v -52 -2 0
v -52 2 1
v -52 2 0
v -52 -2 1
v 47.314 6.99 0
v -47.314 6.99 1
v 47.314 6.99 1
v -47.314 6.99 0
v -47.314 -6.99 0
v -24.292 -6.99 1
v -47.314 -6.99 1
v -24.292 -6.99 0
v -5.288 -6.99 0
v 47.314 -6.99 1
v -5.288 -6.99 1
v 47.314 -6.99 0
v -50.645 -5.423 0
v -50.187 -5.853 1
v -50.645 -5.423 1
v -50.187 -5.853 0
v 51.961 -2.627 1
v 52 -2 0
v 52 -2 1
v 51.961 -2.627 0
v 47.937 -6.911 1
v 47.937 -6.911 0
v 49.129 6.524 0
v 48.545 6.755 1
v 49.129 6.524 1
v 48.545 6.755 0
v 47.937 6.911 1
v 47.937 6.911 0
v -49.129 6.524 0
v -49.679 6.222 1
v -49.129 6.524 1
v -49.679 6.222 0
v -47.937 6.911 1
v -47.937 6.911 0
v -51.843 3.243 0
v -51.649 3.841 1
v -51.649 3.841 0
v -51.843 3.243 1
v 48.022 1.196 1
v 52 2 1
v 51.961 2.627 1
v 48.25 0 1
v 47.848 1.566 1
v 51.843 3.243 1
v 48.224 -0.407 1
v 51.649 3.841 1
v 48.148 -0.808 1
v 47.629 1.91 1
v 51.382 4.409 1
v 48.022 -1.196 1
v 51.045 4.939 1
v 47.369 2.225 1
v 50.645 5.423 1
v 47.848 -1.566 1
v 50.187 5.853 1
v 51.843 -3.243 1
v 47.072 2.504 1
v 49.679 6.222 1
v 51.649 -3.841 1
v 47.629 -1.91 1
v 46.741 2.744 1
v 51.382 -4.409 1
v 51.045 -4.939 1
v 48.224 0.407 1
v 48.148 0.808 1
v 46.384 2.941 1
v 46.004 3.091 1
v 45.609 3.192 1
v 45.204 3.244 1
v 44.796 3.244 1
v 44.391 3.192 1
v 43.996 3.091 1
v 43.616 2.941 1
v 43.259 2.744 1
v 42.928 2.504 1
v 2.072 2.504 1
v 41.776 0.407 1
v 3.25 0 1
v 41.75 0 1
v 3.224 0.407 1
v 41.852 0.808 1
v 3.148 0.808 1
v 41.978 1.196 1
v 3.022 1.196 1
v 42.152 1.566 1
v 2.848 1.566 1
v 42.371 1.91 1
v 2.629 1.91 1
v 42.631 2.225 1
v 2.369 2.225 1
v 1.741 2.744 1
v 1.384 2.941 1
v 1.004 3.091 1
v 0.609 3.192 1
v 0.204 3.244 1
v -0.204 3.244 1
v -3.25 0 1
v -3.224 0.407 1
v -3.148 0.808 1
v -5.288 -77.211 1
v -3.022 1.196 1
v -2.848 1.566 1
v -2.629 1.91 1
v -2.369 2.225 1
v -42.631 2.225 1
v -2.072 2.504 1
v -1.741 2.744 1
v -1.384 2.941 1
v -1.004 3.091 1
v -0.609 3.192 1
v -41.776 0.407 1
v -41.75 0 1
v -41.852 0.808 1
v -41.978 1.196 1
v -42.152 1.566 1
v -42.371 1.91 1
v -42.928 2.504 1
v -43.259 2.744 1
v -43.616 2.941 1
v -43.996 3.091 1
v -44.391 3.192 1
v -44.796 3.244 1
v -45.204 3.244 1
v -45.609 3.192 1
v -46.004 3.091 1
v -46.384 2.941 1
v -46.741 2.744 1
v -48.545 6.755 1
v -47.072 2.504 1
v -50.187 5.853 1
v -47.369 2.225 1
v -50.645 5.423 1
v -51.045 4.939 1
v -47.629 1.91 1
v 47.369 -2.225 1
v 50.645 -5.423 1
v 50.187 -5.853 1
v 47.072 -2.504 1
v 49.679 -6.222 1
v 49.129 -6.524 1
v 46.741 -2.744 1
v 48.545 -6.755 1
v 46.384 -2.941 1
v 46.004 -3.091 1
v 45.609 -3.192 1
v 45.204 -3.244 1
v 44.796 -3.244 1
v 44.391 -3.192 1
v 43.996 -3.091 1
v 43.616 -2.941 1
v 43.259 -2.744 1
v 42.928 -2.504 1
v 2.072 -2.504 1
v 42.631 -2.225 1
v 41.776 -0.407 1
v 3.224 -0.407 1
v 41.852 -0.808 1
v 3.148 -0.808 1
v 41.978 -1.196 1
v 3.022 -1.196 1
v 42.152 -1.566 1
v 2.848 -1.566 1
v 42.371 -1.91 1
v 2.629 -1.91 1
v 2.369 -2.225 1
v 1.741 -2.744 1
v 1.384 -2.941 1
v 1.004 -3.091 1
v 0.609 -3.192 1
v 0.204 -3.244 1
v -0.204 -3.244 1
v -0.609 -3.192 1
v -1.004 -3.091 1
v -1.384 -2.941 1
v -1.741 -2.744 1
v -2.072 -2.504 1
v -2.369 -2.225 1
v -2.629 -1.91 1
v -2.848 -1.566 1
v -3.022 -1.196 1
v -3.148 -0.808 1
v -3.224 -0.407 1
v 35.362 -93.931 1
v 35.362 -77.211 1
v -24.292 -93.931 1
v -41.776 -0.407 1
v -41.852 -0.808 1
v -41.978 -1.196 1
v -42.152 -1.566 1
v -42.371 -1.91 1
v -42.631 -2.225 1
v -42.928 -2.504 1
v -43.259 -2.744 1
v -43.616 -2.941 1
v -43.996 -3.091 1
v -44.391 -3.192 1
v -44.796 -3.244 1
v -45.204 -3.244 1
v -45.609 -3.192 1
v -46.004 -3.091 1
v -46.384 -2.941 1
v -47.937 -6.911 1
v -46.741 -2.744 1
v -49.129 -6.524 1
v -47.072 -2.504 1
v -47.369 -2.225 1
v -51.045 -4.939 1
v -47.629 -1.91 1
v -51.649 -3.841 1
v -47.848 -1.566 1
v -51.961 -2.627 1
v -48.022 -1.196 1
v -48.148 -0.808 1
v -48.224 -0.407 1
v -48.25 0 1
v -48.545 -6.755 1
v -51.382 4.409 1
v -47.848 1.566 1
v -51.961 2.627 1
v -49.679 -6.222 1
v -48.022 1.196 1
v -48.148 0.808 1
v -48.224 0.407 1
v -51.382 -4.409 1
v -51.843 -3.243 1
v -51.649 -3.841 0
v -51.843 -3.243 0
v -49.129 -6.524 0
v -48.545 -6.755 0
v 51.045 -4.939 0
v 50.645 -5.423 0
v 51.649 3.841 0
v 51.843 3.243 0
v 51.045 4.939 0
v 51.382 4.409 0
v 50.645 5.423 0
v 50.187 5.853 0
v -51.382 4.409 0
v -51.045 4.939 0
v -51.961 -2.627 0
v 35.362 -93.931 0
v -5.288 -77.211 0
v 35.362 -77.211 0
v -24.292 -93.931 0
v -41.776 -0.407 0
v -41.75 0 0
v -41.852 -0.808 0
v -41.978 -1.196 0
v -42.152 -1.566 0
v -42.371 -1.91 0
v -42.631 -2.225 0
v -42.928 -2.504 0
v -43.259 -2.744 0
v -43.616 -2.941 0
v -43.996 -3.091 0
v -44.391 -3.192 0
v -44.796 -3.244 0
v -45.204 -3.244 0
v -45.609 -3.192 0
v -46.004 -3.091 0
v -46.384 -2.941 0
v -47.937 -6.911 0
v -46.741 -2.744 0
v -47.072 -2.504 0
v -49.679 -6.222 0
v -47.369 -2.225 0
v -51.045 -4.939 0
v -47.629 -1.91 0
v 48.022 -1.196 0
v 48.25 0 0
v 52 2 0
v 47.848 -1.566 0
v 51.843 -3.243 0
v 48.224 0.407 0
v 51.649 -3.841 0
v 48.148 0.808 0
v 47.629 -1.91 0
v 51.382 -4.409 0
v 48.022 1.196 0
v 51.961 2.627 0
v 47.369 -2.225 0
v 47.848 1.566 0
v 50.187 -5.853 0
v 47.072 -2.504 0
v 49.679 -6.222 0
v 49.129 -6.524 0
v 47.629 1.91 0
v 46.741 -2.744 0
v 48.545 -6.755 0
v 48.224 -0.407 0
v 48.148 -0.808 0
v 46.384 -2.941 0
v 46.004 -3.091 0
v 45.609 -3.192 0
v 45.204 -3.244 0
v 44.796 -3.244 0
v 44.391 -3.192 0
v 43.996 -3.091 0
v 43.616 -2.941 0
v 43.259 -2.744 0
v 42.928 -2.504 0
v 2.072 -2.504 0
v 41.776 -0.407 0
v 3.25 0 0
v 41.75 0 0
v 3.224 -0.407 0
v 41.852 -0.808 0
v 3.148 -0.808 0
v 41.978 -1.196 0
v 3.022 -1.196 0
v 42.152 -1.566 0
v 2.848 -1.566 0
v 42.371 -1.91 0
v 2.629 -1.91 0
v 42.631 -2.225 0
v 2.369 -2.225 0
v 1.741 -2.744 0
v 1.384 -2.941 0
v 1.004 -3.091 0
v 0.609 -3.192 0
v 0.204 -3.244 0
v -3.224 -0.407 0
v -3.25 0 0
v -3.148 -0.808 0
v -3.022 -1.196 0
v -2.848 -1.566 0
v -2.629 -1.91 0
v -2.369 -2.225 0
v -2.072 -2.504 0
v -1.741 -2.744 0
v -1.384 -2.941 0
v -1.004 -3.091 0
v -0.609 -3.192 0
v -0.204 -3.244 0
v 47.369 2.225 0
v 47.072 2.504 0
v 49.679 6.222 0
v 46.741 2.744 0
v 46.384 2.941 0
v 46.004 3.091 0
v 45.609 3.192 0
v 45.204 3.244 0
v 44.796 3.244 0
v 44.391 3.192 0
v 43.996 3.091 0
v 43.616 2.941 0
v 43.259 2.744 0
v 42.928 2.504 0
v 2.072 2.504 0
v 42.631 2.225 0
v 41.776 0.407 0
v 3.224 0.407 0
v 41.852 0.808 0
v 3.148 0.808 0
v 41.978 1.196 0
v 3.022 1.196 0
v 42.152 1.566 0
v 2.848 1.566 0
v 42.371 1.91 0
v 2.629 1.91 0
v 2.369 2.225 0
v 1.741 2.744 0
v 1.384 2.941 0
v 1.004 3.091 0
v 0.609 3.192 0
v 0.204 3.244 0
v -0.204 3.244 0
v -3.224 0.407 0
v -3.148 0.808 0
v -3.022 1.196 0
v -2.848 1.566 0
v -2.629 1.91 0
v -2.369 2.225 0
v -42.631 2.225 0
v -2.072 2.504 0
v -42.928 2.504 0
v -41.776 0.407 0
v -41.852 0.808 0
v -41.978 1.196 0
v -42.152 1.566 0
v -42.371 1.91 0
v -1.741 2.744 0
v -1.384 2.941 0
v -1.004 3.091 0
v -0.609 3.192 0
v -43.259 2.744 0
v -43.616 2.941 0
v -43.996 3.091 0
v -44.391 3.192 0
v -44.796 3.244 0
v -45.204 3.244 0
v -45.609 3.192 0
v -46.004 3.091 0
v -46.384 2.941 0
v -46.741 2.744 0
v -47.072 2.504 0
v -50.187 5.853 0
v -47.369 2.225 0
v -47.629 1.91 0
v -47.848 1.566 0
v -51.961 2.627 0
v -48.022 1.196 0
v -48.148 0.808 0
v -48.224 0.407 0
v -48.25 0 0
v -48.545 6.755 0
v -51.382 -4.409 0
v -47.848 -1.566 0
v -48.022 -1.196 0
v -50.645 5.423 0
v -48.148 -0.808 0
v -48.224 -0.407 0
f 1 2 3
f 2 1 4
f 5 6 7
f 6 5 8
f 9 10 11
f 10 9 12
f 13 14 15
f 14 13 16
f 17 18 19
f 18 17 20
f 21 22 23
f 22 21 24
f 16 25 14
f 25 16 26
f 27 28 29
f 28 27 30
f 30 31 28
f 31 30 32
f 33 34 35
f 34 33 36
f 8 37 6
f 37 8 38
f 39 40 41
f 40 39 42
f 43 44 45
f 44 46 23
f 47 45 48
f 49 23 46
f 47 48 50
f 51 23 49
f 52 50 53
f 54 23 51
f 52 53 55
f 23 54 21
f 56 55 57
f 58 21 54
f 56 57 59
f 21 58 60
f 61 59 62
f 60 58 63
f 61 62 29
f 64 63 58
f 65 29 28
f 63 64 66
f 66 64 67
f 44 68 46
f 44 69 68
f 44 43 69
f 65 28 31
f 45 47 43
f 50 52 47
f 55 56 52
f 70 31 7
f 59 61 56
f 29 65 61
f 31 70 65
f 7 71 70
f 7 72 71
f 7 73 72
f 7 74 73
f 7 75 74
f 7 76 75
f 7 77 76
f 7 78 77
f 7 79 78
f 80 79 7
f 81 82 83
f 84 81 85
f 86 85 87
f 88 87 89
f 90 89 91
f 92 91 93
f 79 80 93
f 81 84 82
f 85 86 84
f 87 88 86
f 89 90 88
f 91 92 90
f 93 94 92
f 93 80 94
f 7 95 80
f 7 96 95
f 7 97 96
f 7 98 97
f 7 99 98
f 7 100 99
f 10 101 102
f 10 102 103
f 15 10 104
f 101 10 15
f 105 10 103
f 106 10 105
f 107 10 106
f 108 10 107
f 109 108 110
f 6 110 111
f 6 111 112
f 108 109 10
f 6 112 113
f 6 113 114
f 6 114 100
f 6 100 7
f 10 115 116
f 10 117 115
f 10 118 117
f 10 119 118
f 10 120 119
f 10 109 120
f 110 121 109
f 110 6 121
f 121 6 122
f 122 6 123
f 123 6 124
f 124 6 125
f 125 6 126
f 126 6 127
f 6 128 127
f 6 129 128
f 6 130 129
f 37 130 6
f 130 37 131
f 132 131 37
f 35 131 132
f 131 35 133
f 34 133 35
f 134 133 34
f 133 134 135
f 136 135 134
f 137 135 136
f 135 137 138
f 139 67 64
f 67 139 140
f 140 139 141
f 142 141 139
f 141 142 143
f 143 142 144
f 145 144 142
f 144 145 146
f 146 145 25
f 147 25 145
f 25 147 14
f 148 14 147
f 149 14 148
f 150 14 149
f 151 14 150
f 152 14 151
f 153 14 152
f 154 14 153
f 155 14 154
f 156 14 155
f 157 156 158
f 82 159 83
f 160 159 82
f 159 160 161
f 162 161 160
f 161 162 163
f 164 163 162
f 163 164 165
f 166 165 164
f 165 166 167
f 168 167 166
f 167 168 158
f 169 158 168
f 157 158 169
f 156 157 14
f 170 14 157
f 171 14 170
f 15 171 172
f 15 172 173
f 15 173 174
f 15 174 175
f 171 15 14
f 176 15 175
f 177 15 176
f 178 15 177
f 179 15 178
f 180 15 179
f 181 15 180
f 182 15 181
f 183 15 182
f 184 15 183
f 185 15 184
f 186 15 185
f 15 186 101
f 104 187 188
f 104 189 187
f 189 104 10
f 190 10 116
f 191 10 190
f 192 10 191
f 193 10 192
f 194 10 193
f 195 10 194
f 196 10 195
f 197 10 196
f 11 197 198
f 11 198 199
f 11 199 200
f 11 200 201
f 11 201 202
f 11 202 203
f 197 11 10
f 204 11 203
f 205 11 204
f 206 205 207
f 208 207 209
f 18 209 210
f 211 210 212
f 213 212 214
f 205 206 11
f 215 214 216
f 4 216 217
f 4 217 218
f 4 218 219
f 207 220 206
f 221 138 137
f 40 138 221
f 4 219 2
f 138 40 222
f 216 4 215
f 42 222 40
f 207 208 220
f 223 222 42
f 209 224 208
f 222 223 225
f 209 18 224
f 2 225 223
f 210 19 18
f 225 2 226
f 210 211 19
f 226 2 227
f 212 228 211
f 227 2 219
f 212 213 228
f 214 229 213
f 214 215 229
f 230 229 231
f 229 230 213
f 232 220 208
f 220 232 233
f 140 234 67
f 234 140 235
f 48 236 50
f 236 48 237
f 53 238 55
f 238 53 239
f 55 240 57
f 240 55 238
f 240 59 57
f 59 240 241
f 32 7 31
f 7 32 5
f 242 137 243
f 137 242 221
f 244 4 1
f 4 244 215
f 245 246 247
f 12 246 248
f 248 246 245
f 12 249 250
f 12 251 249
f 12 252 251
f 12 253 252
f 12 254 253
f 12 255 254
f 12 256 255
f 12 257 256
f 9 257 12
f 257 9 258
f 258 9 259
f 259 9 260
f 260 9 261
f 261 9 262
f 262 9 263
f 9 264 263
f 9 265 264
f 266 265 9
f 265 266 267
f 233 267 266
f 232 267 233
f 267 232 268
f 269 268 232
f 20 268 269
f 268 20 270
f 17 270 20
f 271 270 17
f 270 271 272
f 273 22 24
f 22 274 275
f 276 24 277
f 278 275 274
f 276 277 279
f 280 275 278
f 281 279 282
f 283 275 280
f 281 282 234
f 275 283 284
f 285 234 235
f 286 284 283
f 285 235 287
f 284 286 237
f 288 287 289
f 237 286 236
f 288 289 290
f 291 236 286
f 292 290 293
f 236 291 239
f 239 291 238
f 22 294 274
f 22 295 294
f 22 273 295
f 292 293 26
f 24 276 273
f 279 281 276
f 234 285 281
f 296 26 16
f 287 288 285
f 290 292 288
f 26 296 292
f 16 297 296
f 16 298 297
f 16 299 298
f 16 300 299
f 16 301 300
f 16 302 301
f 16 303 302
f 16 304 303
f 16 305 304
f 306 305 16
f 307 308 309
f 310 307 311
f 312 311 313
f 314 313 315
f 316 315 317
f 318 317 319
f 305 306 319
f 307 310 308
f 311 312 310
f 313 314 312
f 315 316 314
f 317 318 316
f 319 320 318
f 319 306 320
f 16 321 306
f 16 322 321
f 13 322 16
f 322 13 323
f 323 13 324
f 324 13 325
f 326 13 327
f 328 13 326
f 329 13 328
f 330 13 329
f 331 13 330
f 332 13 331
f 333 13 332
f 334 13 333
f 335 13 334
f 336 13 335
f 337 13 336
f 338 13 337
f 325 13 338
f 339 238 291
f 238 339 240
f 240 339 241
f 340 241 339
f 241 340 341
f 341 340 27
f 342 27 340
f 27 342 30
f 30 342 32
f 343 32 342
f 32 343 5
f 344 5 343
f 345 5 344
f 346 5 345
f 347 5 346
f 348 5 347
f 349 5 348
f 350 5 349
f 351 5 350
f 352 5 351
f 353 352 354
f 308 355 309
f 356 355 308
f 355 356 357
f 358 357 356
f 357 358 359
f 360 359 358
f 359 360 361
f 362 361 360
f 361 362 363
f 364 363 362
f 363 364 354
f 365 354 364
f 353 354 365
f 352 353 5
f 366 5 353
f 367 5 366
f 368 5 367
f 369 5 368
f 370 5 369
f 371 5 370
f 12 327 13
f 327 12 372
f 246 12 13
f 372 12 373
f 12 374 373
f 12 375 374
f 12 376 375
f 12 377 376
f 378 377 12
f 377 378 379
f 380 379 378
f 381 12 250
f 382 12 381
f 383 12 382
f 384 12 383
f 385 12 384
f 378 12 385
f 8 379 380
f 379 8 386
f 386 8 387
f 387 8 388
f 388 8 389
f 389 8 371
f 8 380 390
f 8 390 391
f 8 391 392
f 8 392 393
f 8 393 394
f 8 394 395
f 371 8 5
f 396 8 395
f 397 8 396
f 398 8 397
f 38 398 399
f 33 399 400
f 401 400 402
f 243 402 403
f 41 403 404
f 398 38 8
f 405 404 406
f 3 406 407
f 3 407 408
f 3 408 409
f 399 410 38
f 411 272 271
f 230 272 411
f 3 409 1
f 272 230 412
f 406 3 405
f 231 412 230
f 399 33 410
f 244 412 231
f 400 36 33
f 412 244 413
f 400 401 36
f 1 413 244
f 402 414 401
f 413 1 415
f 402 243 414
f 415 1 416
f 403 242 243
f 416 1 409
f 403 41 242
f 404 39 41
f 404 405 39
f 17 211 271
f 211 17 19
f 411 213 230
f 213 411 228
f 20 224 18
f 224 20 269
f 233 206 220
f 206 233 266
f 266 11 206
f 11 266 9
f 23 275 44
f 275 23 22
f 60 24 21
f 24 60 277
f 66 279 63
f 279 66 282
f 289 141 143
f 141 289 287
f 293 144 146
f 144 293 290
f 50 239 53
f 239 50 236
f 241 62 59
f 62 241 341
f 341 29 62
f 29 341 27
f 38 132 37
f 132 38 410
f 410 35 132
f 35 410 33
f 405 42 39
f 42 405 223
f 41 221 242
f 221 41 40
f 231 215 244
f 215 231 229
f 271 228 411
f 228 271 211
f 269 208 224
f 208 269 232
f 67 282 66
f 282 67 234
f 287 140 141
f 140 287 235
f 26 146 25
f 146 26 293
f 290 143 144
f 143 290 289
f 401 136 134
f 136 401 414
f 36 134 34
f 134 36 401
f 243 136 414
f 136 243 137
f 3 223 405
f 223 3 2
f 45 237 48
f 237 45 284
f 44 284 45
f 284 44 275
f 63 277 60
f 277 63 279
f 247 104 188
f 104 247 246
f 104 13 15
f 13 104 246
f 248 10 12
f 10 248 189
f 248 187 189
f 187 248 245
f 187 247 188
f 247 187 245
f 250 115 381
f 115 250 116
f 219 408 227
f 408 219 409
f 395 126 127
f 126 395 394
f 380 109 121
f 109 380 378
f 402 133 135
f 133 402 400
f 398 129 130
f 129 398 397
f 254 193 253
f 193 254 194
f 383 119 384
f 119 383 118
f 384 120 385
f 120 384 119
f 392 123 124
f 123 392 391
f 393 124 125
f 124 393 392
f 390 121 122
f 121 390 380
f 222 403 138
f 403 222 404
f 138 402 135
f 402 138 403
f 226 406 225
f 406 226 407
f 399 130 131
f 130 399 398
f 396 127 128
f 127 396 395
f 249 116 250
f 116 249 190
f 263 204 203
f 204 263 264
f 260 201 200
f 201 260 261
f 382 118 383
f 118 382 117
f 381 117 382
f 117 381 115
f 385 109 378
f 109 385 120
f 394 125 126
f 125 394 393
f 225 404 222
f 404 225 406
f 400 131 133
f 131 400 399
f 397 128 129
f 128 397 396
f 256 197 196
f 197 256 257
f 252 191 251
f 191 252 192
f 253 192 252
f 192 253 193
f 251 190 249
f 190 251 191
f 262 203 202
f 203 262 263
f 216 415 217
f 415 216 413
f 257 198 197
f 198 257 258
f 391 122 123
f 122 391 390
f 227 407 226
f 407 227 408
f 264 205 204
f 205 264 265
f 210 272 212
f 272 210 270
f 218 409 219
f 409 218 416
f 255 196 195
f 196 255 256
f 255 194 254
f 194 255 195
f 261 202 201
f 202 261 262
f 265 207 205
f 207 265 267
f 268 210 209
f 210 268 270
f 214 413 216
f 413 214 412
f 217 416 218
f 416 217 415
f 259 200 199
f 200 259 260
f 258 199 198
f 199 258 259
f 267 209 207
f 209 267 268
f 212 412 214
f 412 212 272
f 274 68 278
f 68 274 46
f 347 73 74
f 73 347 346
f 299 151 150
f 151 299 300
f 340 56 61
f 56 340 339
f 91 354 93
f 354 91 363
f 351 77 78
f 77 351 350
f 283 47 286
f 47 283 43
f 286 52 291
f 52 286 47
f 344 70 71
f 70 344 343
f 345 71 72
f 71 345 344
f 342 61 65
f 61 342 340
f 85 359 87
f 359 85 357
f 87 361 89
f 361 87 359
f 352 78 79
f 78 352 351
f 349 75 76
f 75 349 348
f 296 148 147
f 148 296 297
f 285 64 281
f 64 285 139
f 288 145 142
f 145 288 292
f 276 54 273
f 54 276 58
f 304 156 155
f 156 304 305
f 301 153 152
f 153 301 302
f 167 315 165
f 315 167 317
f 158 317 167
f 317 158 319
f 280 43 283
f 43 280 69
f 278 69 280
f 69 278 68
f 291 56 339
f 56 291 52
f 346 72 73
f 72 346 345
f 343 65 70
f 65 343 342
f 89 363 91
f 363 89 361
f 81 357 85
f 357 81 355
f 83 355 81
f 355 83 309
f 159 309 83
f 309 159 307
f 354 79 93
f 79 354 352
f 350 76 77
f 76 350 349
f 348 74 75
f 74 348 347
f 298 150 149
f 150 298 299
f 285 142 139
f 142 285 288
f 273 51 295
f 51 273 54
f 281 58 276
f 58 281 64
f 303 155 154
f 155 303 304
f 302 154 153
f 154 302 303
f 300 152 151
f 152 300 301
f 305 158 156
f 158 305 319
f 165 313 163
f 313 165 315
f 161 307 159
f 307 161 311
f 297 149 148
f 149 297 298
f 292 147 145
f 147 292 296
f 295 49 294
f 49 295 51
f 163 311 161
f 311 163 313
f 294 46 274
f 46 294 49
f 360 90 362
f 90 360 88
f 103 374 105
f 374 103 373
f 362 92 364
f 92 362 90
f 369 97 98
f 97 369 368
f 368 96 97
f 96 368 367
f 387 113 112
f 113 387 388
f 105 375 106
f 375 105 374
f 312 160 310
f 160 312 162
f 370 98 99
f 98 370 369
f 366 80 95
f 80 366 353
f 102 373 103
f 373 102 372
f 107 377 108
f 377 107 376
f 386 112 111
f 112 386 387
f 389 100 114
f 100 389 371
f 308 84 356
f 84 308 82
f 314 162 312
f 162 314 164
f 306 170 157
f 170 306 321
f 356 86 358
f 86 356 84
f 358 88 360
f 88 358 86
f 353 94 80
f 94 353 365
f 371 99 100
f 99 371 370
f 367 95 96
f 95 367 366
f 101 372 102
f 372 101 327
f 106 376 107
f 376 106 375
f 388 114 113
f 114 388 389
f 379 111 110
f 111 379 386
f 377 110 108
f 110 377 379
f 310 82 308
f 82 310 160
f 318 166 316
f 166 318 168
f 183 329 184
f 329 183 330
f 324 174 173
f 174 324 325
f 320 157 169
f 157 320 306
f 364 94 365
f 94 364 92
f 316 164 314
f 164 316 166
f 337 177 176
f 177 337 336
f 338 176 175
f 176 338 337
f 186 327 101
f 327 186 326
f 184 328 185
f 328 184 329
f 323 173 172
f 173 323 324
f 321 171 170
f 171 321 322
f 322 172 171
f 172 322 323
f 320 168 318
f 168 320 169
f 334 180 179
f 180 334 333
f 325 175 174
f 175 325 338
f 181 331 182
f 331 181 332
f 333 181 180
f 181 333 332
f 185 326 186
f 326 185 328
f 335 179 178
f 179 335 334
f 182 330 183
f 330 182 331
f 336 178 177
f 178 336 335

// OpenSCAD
$fn = 50;


difference() {
	union() {
		translate(v = [0, 0, 0]) {
			rotate(a = [0, 0, 0]) {
				hull() {
					translate(v = [-47.0000000000, 2.0000000000, 0]) {
						rotate(a = [0, 0, 0]) {
							translate(v = [0, 0, 0]) {
								rotate(a = [0, 0, 0]) {
									cylinder(h = 1, r = 5);
								}
							}
						}
					}
					translate(v = [47.0000000000, 2.0000000000, 0]) {
						rotate(a = [0, 0, 0]) {
							translate(v = [0, 0, 0]) {
								rotate(a = [0, 0, 0]) {
									cylinder(h = 1, r = 5);
								}
							}
						}
					}
					translate(v = [-47.0000000000, -2.0000000000, 0]) {
						rotate(a = [0, 0, 0]) {
							translate(v = [0, 0, 0]) {
								rotate(a = [0, 0, 0]) {
									cylinder(h = 1, r = 5);
								}
							}
						}
					}
					translate(v = [47.0000000000, -2.0000000000, 0]) {
						rotate(a = [0, 0, 0]) {
							translate(v = [0, 0, 0]) {
								rotate(a = [0, 0, 0]) {
									cylinder(h = 1, r = 5);
								}
							}
						}
					}
				}
			}
		}
		translate(v = [0, 0, 0]) {
			rotate(a = [0, 0, 0]) {
				linear_extrude(height = 1) {
					text(font = "DejaVu Sans Mono:style=Bold", halign = "center", size = 95, text = "L", valign = "top");
				}
			}
		}
	}
	union() {
		translate(v = [-45.0000000000, 0.0000000000, -125.0000000000]) {
			rotate(a = [0, 0, 0]) {
				cylinder(h = 250, r = 3.2500000000);
			}
		}
		translate(v = [45.0000000000, 0.0000000000, -125.0000000000]) {
			rotate(a = [0, 0, 0]) {
				cylinder(h = 250, r = 3.2500000000);
			}
		}
		translate(v = [45.0000000000, 0.0000000000, -125.0000000000]) {
			rotate(a = [0, 0, 0]) {
				cylinder(h = 250, r = 3.2500000000);
			}
		}
		translate(v = [0, 0, -125.0000000000]) {
			rotate(a = [0, 0, 0]) {
				cylinder(h = 250, r = 3.2500000000);
			}
		}
	}
}
